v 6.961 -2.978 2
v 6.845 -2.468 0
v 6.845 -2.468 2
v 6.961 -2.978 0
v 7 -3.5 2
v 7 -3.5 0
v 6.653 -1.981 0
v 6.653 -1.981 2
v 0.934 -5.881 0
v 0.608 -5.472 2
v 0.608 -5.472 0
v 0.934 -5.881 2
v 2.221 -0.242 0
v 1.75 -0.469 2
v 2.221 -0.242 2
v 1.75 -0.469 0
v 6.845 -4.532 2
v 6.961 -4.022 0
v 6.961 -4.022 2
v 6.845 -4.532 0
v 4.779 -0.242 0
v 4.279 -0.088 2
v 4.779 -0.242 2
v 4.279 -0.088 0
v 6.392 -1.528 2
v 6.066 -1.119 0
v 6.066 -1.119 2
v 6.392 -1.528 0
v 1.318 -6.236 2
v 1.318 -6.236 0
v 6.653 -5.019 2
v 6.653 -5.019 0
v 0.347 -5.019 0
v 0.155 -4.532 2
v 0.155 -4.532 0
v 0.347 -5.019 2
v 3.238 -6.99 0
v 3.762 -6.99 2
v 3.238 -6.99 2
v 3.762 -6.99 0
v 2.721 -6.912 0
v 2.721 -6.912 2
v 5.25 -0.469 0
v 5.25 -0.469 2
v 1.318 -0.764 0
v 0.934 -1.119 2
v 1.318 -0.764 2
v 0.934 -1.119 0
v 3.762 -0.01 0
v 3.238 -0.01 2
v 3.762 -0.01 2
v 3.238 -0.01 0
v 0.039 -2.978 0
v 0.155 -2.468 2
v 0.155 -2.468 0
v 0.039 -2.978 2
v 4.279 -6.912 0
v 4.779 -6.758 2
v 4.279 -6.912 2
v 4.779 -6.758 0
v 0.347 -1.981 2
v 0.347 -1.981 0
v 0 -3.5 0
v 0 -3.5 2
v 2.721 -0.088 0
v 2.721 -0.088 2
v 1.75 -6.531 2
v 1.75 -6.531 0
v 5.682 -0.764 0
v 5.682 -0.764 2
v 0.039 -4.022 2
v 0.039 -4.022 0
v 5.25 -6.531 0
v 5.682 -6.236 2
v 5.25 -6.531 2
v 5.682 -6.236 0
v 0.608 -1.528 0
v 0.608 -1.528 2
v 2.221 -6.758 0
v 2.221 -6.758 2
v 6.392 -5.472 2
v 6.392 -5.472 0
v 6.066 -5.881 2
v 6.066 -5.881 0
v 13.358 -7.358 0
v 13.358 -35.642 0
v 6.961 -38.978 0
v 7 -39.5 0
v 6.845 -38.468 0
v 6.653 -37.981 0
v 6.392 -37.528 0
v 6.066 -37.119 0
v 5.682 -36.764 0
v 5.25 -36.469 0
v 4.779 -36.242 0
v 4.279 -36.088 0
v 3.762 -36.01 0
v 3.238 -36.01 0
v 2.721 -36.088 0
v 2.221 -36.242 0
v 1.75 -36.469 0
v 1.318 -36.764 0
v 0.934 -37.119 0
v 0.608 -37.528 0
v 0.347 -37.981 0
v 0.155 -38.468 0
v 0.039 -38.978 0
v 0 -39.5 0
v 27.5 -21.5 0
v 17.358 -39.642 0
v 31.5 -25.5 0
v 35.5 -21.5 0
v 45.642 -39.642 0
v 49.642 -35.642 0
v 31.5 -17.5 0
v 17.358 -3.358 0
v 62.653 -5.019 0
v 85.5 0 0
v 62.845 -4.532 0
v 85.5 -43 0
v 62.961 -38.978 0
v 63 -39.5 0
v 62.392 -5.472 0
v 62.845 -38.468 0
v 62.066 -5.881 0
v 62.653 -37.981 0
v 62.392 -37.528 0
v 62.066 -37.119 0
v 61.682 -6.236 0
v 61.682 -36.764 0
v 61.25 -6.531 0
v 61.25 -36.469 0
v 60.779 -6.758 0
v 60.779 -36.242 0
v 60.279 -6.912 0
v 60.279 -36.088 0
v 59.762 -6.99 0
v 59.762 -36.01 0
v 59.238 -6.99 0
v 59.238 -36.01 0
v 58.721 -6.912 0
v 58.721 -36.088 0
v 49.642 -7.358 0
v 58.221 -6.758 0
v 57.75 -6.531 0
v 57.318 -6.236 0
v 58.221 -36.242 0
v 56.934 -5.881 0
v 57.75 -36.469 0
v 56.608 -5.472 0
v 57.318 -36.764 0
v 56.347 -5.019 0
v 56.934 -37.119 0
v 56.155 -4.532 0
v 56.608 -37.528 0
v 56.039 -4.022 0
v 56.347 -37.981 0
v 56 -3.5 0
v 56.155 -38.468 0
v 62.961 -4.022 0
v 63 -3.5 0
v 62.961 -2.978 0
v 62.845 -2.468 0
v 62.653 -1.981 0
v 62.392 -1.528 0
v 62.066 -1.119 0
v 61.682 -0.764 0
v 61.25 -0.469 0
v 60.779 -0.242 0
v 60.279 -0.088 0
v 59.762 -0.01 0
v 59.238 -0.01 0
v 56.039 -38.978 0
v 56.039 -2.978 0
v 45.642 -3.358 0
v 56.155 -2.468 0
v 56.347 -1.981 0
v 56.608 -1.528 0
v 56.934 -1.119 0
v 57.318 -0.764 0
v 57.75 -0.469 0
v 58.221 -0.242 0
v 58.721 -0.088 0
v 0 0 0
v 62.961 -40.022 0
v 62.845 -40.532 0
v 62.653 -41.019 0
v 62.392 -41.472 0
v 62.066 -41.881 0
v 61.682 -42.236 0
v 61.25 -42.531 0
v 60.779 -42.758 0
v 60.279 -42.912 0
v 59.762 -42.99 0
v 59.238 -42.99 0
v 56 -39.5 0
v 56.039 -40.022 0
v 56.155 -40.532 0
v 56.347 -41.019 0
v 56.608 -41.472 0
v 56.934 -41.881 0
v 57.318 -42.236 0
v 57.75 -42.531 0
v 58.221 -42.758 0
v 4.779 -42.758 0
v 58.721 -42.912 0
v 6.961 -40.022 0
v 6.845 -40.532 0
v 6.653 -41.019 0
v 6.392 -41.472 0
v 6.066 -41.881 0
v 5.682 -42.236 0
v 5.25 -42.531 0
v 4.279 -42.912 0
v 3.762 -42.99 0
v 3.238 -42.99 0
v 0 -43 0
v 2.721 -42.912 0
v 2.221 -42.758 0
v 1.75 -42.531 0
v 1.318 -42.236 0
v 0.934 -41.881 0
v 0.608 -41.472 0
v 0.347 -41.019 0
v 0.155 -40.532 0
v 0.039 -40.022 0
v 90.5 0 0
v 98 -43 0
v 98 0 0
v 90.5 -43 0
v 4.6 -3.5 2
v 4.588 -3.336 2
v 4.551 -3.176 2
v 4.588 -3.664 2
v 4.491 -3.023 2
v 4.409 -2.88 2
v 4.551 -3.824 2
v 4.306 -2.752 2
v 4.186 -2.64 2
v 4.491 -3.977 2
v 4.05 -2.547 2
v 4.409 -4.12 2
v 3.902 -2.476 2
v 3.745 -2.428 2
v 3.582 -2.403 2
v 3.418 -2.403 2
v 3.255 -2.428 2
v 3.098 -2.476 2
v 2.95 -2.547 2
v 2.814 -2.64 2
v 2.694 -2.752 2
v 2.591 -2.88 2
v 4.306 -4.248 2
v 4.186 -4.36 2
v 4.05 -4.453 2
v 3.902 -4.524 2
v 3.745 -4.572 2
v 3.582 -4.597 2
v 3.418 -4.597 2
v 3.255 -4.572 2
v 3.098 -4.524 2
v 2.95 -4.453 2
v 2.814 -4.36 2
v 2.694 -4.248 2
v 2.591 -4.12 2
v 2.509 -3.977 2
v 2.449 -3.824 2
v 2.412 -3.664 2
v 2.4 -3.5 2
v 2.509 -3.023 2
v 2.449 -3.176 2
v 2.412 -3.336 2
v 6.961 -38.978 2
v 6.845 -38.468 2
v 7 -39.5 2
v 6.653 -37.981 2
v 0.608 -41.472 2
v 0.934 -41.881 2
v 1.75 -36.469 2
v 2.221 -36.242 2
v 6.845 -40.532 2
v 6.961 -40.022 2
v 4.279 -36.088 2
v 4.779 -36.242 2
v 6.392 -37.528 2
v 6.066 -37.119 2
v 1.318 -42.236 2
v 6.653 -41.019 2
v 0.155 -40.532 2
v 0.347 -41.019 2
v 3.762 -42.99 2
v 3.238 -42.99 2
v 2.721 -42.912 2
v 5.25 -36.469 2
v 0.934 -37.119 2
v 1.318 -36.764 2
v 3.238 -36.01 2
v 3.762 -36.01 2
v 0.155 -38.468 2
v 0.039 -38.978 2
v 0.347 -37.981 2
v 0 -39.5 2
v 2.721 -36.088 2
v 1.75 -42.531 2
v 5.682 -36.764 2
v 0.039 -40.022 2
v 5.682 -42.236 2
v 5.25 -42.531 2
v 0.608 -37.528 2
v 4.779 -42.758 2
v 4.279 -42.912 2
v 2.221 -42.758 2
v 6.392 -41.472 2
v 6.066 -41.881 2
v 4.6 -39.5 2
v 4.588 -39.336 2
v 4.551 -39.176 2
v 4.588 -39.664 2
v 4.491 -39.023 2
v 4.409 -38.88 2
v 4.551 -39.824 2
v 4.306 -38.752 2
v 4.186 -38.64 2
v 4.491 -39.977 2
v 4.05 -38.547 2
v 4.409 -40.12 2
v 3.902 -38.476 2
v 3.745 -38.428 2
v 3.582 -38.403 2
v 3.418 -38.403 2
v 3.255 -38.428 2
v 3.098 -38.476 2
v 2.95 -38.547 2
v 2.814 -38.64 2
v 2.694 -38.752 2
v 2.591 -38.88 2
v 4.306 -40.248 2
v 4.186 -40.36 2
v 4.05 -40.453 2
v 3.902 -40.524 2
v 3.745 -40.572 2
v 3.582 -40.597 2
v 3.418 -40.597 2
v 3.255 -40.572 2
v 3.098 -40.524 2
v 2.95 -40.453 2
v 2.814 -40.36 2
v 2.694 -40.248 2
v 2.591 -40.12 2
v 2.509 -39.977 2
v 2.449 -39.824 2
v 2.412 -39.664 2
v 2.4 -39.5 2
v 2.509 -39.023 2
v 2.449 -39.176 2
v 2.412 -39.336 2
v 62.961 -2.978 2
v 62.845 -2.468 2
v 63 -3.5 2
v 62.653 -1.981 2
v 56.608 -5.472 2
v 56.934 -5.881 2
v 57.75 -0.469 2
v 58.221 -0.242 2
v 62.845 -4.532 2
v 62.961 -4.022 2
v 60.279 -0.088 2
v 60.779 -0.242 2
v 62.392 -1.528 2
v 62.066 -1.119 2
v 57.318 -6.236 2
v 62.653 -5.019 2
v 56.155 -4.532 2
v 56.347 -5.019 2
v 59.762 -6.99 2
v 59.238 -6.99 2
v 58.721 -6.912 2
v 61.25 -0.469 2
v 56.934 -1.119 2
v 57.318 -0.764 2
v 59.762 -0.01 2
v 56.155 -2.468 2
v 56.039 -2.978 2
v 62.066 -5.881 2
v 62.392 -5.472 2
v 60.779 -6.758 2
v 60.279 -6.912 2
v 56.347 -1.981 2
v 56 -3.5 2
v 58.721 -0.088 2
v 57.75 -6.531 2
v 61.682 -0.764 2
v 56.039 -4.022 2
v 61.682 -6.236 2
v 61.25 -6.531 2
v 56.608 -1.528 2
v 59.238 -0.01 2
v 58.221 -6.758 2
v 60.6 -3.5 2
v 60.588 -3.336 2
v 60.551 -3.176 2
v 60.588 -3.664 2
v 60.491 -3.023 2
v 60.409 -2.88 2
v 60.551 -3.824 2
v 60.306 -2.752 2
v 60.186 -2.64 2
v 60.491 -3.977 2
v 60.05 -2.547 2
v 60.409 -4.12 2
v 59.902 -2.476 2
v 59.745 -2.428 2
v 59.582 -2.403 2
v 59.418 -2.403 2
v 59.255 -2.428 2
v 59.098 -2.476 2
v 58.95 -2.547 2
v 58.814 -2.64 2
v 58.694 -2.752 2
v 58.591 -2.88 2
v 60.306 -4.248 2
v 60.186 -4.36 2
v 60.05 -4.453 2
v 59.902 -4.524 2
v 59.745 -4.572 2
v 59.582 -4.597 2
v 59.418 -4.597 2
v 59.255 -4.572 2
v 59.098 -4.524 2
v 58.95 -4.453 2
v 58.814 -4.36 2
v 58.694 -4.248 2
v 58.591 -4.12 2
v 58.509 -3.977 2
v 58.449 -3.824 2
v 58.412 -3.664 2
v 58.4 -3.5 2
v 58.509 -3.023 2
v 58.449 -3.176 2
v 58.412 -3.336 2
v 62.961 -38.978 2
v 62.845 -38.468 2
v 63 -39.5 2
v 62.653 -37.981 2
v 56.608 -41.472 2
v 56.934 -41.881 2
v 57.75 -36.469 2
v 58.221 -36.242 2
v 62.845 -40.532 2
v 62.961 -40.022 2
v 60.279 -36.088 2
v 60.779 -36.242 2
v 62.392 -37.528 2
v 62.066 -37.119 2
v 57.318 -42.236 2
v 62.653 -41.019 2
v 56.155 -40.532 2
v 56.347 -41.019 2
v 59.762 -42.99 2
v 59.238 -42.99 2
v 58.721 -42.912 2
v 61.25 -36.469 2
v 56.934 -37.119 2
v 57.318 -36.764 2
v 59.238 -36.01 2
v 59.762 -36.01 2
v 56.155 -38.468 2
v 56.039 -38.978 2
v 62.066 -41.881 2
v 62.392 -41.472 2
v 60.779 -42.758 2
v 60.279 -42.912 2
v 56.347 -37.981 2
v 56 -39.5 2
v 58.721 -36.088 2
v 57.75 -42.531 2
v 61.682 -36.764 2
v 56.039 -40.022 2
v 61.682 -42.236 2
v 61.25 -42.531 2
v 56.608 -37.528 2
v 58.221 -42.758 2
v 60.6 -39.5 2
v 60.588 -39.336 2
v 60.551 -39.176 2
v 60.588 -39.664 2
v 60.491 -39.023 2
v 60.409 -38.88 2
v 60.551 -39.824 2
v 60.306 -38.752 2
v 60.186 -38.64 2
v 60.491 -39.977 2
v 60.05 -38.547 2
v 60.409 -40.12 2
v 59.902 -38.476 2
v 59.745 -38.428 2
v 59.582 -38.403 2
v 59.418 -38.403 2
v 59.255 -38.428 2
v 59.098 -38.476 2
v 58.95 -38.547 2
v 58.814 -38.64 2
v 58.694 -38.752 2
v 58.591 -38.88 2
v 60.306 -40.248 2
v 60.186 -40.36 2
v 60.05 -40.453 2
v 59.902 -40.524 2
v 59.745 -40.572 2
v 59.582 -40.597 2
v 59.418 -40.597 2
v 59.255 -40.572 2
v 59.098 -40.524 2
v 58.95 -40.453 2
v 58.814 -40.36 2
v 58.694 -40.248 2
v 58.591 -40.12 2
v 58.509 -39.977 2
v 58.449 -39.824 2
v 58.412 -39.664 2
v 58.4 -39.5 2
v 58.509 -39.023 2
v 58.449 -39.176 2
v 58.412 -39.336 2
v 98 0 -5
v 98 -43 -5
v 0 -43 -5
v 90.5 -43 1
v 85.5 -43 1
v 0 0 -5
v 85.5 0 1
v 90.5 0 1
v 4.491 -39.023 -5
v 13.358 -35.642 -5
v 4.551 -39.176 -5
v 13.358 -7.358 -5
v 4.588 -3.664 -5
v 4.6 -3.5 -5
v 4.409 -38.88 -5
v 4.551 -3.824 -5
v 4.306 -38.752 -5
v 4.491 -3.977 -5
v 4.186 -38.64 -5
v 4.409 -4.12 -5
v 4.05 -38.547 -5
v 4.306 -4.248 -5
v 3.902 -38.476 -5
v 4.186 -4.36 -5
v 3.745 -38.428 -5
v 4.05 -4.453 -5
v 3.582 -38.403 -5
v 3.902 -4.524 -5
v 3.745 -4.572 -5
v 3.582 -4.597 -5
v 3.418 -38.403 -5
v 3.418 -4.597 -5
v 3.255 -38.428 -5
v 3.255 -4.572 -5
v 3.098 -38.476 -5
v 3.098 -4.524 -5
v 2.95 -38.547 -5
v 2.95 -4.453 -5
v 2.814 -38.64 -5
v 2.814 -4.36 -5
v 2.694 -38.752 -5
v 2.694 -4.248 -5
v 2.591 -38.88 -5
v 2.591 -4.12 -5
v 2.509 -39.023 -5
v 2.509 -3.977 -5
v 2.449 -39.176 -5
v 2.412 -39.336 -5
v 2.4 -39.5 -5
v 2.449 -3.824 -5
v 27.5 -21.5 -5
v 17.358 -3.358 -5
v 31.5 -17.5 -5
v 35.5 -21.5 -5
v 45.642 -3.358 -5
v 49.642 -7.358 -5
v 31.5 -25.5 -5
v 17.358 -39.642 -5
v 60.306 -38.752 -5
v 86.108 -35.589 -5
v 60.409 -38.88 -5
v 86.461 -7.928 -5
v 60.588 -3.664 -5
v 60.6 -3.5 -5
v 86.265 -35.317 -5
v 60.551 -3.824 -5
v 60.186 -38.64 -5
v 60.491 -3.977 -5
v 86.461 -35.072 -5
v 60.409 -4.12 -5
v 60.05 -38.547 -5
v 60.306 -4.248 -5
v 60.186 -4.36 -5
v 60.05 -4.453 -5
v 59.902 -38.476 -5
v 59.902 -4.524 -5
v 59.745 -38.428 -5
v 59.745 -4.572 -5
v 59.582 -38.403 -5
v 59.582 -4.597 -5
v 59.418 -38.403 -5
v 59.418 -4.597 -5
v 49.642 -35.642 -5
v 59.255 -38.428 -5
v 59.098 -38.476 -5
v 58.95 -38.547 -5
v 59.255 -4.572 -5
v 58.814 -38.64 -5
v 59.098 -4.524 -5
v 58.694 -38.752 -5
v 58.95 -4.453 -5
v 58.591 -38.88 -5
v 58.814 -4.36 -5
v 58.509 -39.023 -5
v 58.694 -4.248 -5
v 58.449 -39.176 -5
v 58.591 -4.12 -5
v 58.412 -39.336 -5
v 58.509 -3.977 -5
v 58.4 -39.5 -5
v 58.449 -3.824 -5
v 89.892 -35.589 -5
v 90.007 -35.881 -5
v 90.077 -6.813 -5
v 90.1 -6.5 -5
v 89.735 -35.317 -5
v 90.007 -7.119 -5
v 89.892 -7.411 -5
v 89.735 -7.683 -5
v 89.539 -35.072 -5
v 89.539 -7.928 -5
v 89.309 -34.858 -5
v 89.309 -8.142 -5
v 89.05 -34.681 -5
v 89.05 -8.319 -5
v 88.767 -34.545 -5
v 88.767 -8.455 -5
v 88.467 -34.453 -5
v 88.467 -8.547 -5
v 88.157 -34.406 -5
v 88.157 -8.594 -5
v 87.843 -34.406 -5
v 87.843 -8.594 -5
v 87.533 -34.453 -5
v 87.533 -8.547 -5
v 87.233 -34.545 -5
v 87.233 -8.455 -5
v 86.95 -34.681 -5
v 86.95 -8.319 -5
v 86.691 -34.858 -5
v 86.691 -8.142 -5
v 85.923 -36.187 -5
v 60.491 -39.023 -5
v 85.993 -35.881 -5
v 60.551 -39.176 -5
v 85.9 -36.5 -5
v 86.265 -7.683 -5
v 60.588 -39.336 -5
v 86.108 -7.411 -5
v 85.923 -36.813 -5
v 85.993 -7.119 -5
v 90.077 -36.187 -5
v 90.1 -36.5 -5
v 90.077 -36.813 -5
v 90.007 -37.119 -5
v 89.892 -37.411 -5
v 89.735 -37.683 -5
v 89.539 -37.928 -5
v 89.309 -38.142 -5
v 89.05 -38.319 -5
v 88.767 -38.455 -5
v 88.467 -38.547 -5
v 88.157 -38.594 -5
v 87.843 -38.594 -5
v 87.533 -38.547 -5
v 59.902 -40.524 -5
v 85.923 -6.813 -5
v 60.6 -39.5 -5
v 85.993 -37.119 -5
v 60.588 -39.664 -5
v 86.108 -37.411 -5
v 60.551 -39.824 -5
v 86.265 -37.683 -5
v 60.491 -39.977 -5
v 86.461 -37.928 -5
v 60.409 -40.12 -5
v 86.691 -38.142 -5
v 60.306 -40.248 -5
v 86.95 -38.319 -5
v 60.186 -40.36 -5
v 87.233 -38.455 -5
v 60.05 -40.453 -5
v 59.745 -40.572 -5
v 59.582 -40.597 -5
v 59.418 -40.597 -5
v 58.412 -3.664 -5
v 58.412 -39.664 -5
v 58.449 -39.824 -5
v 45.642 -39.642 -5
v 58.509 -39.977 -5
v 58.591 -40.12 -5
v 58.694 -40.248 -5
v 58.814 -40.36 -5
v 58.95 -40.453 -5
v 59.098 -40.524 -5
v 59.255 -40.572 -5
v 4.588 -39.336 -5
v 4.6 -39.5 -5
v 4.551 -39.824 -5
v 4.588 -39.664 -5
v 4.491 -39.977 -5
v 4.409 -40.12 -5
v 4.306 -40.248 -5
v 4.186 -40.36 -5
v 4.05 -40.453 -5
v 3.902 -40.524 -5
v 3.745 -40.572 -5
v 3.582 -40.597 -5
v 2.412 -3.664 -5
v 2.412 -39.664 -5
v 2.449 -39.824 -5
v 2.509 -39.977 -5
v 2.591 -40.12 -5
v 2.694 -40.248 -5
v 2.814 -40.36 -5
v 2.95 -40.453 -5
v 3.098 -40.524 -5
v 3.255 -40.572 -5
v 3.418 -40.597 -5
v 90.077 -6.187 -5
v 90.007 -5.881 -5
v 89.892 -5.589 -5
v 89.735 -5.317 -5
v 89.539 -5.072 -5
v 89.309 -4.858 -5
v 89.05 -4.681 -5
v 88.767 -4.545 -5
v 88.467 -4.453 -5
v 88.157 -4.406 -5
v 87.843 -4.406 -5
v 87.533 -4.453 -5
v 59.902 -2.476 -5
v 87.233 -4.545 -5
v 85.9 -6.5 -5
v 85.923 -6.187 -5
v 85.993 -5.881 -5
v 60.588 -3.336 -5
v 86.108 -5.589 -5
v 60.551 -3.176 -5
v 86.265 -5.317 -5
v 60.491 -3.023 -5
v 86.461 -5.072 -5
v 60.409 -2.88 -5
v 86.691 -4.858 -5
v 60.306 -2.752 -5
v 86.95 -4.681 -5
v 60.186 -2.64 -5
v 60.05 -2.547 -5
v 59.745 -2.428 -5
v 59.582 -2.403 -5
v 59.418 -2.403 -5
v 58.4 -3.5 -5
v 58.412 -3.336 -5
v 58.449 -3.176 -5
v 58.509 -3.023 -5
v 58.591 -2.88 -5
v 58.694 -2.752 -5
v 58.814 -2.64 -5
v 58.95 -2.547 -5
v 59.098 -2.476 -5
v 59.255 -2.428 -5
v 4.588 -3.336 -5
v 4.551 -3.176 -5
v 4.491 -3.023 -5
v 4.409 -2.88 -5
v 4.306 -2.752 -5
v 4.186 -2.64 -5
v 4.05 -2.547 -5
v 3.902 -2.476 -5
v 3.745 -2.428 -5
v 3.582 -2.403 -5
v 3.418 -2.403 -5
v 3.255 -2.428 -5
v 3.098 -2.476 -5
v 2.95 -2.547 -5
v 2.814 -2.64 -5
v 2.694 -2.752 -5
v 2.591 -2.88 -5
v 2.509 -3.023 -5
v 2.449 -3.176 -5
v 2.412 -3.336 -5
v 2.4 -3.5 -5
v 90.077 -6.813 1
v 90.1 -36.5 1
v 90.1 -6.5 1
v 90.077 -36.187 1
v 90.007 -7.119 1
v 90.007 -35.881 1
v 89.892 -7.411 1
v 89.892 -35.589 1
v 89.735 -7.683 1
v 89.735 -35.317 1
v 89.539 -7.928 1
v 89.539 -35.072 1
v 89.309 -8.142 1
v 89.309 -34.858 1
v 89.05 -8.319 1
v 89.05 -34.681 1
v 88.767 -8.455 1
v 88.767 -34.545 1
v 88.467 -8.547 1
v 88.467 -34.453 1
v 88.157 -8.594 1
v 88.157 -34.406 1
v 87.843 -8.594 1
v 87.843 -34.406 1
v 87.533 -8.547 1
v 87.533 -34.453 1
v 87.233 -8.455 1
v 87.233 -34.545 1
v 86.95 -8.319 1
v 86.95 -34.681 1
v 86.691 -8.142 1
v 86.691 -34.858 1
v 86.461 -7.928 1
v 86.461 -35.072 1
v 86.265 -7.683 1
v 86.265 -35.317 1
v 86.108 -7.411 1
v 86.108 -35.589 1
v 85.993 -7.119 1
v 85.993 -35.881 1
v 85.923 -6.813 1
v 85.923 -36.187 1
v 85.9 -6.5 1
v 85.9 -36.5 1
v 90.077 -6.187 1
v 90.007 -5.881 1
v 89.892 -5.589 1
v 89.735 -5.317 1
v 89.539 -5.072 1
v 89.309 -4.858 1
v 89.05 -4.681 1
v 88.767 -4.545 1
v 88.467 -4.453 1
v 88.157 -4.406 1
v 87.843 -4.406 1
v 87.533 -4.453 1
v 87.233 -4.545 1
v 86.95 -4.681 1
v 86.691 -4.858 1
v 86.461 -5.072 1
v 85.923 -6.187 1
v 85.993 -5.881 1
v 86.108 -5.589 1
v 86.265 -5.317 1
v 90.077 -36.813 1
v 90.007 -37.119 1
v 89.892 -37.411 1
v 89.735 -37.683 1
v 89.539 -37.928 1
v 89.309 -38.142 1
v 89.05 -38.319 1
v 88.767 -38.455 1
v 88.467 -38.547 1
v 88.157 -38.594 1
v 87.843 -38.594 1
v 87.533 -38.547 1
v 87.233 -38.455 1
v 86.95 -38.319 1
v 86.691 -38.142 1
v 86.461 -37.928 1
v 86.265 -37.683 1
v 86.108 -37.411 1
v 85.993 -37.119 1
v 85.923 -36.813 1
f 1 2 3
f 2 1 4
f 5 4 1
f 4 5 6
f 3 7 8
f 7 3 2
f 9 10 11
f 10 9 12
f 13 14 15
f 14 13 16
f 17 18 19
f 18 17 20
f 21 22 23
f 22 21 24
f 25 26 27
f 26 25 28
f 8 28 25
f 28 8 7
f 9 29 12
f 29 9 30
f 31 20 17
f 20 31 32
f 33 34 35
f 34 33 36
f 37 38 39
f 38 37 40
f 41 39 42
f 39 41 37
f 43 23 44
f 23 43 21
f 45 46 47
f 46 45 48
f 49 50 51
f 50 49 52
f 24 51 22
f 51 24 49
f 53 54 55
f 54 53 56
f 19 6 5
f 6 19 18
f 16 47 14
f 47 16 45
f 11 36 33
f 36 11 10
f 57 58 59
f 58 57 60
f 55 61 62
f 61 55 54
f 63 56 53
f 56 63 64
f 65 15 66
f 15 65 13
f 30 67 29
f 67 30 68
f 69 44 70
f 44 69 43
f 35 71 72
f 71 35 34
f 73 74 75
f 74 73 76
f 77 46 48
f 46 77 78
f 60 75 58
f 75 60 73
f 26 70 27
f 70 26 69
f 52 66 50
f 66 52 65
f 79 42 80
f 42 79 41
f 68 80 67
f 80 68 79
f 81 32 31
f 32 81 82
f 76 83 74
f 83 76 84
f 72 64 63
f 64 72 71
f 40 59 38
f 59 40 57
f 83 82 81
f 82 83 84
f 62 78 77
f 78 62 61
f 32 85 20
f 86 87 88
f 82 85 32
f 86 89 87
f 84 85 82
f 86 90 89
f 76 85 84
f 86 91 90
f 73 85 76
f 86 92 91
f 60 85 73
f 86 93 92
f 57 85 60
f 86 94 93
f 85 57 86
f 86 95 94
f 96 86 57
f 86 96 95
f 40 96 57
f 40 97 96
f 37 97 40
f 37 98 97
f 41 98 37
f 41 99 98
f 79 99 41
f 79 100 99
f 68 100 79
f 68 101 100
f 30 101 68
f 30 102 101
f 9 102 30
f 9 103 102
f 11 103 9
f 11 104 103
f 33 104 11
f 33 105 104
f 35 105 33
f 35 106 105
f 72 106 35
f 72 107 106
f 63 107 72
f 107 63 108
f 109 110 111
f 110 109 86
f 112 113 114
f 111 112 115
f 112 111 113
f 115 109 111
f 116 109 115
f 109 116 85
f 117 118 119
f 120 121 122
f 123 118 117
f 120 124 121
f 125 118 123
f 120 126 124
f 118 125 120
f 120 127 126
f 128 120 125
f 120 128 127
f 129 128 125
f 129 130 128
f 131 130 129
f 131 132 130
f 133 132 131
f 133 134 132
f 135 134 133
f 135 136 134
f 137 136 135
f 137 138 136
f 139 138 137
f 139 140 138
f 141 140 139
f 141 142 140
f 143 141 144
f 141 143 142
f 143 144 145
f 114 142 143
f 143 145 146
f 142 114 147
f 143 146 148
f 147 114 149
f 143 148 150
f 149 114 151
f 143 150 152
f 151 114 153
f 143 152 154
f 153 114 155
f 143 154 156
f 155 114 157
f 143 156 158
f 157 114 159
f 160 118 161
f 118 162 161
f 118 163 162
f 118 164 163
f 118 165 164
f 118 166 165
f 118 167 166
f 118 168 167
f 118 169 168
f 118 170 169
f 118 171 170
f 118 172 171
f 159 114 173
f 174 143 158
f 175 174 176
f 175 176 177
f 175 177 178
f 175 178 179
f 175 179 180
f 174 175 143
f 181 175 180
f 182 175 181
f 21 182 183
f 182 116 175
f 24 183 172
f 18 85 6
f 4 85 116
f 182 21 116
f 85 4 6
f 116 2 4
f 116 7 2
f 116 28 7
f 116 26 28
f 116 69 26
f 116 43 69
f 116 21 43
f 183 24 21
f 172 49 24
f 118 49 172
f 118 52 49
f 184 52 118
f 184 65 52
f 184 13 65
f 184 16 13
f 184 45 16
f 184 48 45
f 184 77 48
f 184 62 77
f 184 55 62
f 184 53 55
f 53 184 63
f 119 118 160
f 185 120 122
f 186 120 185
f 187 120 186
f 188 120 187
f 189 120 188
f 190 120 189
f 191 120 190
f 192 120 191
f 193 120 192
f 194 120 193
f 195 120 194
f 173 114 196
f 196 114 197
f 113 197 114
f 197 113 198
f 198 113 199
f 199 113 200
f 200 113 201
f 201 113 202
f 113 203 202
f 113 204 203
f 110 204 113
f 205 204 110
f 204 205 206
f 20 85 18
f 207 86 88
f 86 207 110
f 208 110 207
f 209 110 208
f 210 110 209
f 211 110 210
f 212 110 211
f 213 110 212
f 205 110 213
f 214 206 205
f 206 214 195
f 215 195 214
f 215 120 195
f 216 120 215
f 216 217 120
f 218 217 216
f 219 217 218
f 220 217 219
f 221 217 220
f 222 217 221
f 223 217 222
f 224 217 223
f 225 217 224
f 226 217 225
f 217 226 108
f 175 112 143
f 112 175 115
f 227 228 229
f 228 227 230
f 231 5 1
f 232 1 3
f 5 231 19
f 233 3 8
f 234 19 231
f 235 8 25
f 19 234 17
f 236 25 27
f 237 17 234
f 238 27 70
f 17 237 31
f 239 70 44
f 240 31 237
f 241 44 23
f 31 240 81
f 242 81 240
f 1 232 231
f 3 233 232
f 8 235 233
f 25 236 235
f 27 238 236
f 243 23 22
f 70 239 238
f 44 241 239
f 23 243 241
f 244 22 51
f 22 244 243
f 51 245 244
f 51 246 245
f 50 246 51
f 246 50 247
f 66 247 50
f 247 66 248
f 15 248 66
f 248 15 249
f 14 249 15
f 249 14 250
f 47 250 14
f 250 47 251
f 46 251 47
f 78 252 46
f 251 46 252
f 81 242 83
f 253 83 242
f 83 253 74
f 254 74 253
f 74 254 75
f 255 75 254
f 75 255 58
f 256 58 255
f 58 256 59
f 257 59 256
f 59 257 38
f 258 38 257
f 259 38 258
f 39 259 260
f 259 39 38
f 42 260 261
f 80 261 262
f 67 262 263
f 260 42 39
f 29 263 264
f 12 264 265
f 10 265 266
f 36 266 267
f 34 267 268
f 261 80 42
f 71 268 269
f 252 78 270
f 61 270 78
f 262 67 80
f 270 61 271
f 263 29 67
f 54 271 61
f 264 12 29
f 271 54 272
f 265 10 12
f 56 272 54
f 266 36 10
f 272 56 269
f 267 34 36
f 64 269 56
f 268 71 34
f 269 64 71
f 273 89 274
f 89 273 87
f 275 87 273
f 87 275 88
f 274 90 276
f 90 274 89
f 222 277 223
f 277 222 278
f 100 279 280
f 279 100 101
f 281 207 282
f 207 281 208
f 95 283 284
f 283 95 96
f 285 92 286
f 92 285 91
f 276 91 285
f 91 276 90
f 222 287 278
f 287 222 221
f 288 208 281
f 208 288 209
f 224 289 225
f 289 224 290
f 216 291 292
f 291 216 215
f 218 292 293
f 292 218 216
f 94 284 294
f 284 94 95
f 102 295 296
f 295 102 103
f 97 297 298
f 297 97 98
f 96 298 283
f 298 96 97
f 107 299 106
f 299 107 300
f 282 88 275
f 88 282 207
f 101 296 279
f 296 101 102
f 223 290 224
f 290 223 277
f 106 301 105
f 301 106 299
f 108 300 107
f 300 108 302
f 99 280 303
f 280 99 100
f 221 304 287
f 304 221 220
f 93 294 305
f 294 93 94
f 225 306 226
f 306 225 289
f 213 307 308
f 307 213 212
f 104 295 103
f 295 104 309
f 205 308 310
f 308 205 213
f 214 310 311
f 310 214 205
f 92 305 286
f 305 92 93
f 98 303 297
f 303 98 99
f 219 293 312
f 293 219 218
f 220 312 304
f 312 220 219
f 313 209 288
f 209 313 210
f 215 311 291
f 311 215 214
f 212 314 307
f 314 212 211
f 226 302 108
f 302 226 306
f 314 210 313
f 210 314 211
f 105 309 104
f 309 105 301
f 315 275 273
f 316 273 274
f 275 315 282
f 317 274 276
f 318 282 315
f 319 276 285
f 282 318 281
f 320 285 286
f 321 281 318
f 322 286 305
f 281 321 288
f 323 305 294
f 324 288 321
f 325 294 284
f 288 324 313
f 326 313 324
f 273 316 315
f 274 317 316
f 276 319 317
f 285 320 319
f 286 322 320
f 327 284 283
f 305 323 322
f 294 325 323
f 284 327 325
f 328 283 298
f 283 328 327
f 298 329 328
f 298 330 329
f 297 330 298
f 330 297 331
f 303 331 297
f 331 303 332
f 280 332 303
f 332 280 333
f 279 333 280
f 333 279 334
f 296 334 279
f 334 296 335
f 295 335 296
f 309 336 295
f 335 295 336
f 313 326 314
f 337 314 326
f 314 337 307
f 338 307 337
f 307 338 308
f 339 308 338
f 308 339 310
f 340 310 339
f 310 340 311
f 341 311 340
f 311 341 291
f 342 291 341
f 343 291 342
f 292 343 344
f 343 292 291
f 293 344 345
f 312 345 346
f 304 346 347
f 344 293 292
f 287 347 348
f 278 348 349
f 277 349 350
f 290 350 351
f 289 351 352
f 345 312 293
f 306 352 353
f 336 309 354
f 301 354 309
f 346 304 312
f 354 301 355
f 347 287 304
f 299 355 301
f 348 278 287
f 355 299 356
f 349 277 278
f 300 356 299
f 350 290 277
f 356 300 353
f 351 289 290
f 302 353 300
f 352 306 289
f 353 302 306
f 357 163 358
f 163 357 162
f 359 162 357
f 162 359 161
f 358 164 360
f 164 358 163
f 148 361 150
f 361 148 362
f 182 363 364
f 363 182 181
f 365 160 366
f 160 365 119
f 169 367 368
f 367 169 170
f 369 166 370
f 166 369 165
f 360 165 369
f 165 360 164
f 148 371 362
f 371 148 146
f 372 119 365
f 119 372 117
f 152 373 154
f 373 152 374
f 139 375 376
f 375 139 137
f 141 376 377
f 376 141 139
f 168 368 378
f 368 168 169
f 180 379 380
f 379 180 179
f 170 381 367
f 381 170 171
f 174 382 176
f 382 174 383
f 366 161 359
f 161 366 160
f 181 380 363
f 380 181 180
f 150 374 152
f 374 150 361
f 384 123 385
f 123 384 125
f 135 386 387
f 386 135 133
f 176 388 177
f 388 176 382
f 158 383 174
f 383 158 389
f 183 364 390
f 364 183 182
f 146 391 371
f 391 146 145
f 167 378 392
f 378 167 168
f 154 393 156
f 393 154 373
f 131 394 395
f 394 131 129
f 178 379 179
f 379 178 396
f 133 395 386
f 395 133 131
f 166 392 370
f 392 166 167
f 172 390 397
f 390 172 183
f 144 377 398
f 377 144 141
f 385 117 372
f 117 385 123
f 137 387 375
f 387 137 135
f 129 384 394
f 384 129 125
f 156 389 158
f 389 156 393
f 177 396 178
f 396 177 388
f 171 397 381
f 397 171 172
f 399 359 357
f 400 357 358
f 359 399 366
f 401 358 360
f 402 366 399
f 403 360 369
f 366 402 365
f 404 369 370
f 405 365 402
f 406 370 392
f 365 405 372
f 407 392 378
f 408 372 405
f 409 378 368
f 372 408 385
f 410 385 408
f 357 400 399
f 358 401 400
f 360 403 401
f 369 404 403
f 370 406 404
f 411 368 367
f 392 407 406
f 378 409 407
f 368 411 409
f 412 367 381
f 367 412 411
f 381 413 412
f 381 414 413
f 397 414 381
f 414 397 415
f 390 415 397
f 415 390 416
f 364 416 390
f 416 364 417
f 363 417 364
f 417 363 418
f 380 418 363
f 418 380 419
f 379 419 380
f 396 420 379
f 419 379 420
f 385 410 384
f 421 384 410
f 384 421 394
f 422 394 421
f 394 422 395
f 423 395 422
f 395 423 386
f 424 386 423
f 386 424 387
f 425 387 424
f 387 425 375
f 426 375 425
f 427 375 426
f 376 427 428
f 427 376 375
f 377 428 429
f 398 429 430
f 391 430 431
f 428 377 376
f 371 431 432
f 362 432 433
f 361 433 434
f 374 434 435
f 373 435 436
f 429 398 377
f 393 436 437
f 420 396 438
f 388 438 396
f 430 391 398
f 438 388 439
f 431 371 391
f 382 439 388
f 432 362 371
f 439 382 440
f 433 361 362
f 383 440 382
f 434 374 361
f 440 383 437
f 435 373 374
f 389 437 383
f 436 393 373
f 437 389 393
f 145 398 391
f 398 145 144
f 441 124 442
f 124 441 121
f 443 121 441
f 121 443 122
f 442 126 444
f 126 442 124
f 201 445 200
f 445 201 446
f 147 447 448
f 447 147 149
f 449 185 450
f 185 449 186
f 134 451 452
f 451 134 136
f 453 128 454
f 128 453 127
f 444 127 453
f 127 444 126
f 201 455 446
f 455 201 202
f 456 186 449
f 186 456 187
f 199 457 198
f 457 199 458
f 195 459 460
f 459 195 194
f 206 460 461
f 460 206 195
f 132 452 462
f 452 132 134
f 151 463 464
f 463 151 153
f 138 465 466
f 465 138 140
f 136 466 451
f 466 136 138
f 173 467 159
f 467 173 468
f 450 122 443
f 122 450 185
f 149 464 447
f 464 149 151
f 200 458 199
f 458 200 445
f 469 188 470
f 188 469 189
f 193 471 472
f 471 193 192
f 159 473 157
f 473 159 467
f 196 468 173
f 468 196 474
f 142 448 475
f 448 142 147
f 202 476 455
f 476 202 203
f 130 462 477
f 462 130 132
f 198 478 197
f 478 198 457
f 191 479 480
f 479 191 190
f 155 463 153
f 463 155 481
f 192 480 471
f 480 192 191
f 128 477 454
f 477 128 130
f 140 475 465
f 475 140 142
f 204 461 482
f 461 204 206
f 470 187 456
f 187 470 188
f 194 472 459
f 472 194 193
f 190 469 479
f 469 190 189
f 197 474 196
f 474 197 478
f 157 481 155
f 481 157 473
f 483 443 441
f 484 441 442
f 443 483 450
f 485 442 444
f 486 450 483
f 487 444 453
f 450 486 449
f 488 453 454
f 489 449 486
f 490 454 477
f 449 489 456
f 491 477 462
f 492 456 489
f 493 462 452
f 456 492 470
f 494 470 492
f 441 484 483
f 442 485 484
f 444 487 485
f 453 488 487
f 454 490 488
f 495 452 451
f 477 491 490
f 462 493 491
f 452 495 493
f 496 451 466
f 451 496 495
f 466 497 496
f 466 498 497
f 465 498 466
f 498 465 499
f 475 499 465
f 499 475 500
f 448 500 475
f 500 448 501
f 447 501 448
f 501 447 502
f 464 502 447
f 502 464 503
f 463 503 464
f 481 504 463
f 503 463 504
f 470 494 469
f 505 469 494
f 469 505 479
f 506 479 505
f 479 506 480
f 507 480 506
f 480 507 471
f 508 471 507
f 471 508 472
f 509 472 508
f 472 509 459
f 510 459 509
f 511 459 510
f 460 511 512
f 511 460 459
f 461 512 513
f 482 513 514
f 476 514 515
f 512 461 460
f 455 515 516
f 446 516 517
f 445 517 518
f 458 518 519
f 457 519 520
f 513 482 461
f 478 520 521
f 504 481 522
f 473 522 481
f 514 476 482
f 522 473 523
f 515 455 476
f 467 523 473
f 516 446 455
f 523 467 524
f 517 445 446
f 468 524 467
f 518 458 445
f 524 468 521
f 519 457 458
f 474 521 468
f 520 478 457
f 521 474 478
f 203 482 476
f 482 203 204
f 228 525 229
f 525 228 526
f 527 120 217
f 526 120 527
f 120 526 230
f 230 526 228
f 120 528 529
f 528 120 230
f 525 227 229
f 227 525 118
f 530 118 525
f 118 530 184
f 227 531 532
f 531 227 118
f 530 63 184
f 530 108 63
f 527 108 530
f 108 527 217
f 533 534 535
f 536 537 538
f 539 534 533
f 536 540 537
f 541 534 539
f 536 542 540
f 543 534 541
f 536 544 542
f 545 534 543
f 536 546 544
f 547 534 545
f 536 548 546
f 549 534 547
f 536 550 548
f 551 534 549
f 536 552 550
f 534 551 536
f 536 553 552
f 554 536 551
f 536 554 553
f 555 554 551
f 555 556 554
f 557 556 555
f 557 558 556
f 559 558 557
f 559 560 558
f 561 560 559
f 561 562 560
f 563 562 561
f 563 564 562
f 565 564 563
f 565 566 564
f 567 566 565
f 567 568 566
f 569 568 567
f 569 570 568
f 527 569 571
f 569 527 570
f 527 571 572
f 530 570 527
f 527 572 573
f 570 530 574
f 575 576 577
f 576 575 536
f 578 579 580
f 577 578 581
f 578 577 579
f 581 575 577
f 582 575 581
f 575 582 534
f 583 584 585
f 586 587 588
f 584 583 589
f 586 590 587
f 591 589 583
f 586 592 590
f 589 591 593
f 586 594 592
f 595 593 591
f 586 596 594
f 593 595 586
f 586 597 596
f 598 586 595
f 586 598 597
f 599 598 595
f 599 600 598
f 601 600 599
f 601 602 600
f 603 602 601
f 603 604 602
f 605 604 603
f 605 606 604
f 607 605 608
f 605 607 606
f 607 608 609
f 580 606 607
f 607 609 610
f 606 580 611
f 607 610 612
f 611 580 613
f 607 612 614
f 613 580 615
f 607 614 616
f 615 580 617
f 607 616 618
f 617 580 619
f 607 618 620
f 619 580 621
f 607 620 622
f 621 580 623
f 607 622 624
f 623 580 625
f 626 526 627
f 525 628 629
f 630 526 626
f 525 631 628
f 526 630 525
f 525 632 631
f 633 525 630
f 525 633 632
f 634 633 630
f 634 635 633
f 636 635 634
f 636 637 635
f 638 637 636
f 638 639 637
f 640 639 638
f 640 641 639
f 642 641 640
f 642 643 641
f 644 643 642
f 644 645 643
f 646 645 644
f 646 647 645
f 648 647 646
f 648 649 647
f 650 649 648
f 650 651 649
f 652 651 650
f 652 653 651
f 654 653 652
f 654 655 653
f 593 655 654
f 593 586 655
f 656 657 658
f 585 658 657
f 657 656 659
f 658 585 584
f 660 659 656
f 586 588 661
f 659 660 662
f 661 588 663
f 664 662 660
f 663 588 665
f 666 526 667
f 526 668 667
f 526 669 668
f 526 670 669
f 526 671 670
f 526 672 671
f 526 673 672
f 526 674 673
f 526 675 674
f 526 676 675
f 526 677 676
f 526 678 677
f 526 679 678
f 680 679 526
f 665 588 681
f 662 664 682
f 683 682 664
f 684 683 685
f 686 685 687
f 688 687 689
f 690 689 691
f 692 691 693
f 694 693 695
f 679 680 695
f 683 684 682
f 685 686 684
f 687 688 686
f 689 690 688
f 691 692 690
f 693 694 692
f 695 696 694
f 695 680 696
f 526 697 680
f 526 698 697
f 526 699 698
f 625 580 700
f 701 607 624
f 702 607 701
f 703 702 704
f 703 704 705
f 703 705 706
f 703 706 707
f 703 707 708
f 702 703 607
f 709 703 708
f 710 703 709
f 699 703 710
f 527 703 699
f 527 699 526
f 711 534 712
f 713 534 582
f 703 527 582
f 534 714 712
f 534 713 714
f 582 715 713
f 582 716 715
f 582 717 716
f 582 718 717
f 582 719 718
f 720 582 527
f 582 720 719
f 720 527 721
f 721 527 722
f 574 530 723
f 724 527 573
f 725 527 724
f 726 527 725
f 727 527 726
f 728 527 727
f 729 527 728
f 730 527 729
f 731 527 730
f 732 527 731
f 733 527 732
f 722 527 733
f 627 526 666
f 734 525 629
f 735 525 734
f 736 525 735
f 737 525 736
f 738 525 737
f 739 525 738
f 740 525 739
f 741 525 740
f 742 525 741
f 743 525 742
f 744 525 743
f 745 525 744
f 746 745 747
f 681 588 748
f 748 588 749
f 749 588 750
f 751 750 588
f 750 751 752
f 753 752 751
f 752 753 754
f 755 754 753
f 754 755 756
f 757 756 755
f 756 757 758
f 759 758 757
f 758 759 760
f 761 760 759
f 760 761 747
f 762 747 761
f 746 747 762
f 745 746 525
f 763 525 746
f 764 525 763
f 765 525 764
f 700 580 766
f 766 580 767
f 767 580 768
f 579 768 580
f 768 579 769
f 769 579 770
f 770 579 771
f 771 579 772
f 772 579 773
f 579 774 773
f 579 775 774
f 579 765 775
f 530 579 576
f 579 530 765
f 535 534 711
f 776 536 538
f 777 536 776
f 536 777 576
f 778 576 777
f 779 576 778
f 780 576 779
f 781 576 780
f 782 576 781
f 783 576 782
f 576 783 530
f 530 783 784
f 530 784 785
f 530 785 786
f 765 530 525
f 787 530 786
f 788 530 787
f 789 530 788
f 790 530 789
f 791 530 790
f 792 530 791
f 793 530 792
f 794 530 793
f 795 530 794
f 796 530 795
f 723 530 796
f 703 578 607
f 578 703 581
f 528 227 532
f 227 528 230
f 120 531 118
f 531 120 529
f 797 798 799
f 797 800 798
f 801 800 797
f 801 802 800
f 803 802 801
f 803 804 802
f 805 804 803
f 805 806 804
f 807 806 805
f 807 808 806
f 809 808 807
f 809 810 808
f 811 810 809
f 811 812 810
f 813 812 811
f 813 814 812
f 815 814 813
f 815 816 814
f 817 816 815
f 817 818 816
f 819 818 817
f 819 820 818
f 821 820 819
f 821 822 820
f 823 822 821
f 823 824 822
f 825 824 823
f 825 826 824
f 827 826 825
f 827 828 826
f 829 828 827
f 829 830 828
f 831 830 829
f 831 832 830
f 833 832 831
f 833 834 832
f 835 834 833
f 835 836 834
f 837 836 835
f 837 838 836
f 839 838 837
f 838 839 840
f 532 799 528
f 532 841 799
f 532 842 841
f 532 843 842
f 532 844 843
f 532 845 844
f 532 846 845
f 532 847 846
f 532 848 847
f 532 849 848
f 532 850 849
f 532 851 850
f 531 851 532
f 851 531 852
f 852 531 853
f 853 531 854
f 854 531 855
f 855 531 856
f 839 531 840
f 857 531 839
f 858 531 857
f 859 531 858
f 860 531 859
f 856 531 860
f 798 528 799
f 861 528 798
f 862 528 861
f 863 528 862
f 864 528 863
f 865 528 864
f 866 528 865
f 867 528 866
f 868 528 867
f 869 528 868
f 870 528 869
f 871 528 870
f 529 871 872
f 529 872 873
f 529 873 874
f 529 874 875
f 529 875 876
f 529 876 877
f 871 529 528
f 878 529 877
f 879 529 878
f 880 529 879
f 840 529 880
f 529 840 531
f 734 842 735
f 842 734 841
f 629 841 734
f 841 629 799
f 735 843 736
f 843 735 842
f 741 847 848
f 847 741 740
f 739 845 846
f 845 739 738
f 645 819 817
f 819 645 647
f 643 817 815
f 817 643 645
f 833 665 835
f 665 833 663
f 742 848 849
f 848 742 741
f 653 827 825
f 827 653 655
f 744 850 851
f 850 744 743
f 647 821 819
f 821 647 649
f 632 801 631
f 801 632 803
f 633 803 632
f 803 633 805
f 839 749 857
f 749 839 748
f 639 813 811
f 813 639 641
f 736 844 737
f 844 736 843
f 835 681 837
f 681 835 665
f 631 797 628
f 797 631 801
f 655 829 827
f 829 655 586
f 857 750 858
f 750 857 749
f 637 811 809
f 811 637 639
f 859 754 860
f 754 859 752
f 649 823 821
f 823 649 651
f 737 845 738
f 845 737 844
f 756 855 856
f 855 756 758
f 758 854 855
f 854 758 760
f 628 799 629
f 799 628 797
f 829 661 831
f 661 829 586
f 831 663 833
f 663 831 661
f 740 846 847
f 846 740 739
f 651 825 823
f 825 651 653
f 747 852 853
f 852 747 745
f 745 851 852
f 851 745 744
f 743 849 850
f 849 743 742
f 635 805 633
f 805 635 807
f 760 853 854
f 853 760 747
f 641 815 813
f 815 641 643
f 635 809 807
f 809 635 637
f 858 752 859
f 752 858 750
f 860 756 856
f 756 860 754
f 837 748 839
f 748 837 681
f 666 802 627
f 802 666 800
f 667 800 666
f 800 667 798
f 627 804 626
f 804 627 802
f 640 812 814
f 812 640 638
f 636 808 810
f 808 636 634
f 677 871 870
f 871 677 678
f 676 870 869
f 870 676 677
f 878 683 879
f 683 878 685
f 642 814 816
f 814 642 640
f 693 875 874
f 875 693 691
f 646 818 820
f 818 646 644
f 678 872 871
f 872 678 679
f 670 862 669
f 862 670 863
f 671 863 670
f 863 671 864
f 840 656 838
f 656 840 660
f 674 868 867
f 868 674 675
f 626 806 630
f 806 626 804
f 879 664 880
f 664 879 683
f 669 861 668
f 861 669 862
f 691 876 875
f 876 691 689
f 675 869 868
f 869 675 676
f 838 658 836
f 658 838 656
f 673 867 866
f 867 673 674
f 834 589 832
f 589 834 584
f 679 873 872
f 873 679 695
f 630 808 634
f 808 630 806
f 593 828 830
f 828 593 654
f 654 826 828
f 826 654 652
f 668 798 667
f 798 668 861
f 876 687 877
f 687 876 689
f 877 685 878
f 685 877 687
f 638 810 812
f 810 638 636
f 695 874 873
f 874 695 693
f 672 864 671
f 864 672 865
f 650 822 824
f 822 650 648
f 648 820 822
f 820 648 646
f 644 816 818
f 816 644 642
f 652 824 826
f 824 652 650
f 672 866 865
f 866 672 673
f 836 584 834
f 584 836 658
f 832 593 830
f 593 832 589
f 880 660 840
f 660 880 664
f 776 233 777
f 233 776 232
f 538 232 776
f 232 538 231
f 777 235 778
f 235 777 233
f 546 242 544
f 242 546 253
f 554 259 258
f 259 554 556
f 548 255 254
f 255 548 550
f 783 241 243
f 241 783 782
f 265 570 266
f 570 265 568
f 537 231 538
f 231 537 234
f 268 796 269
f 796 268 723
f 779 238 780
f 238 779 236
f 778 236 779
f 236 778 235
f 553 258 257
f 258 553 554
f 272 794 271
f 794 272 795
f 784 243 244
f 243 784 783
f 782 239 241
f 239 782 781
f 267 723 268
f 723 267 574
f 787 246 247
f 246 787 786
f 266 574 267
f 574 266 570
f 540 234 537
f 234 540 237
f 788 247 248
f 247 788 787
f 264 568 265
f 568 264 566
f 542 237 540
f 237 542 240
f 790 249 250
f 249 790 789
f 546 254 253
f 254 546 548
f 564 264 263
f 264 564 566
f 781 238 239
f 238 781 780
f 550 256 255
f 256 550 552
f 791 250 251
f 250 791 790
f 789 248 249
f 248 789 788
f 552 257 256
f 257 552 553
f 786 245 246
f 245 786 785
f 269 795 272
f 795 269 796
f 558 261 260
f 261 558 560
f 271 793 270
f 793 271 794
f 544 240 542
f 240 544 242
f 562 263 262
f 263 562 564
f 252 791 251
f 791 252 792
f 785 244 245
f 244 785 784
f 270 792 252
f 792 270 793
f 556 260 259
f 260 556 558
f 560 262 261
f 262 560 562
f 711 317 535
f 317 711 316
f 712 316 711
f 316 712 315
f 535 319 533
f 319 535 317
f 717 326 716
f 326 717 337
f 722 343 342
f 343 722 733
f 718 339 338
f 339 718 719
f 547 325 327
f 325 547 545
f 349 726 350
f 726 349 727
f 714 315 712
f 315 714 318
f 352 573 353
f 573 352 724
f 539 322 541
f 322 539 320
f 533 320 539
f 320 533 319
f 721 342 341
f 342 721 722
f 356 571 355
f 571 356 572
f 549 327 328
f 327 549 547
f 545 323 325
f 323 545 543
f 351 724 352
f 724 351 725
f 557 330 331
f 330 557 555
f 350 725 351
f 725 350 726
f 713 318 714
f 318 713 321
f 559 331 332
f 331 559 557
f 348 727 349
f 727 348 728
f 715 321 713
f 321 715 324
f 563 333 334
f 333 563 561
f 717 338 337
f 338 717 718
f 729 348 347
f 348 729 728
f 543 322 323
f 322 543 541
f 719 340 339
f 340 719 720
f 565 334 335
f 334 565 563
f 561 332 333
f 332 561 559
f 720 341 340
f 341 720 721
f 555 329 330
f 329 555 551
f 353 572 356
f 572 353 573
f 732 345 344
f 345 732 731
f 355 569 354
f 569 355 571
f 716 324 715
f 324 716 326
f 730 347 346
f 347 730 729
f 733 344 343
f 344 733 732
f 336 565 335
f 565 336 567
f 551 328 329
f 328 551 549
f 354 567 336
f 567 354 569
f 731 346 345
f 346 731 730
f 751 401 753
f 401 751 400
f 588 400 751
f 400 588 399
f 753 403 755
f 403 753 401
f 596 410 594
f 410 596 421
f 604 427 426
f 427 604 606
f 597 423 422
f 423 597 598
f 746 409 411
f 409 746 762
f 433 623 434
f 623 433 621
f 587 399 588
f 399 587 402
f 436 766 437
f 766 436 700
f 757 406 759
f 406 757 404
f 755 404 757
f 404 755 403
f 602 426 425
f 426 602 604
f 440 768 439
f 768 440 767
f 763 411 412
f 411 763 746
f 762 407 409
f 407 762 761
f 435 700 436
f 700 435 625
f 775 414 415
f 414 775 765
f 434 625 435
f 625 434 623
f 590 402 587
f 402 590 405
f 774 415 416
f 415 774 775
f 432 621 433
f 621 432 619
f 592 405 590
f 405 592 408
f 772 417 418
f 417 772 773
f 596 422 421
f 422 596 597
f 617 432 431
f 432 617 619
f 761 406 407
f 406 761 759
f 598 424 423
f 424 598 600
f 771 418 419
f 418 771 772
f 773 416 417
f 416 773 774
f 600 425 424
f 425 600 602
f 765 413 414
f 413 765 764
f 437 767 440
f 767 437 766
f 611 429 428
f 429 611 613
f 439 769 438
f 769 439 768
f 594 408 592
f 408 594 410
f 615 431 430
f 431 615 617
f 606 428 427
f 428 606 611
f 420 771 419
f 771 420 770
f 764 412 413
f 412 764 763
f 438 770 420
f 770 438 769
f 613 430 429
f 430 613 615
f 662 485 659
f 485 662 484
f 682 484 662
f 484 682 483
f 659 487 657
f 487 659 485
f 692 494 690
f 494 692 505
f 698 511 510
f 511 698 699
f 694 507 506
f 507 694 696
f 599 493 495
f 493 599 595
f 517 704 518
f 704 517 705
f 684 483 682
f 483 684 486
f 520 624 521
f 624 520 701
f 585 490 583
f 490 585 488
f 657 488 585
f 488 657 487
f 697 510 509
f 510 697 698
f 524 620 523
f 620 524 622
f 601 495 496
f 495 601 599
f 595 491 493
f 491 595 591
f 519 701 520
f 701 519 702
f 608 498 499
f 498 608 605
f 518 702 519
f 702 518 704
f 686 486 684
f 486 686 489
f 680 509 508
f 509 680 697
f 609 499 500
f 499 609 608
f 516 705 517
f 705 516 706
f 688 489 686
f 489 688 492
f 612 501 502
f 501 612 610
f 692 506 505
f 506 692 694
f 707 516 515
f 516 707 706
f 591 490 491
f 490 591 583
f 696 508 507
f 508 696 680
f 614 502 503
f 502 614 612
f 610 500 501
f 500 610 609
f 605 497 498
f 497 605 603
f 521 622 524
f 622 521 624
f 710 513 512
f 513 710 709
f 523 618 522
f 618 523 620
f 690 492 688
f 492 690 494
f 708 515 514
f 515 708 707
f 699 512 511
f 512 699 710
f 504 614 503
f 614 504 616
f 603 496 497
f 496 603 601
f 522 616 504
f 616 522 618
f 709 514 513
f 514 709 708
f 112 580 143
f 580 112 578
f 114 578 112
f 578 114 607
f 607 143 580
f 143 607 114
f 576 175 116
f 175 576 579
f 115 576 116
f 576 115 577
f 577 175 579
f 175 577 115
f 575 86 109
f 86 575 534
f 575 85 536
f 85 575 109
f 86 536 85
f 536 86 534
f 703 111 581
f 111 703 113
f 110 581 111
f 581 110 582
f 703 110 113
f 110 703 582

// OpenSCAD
mosfet_width = 60 + 3;
mosfet_height = 40 + 3;
mosfet_depth = 2;

mosfet_holes_x = 56;
mosfet_holes_y = 36;
mosfet_dia = 2.2;

wall = 5.0;
mosfet_wall_dist = 15.0;
mosfet_mount_dist = 2.0;
mount_dia = 4.2;

cutout_len = 20;
cutout_dist = 4;

$fn = 42;

module prism(l, w, h) {
    polyhedron(
        points = [[0,0,0], [l,0,0], [l,w,0], [0,w,0], [0,w,h], [l,w,h]],
        faces = [[0,1,2,3],[5,4,3,2],[0,4,5,1],[0,3,4],[5,2,1]]
    );
}

module mosfet() {
    cube([mosfet_width, mosfet_height, mosfet_depth]);
    
    for (x = [-1, 1])
    for (y = [-1, 1])
    translate([mosfet_width / 2 + x * mosfet_holes_x / 2, mosfet_height / 2 + y * mosfet_holes_y / 2, -mosfet_mount_dist - wall - 1])
    cylinder(d = mosfet_dia - 0.2, h = mosfet_mount_dist + wall + 1);
}

module mount() {
    translate([0, -wall, 0])
    difference() {
        union() {
            cube([mosfet_width + mosfet_wall_dist + 20, wall, mosfet_height]);
            
            translate([mosfet_width + mosfet_wall_dist + 7.5, wall, 0])
            cube([5, 1, mosfet_height]);
            
            for (x = [-1, 1])
            for (y = [-1, 1])
            translate([mosfet_width / 2 + x * mosfet_holes_x / 2, wall, mosfet_height / 2 + y * mosfet_holes_y / 2])
            rotate([-90, 0, 0])
            cylinder(d = 7, h = mosfet_mount_dist);
        }
        
        for (i = [-15, 15])
        translate([mosfet_width + mosfet_wall_dist + 10, -1, mosfet_height / 2 + i])
        rotate([-90, 0, 0])
        cylinder(d = mount_dia, h = wall + 3);
        
        for (x = [-1, 1])
        for (y = [-1, 1])
        translate([mosfet_width / 2 + x * mosfet_holes_x / 2, -1, mosfet_height / 2 + y * mosfet_holes_y / 2])
        rotate([-90, 0, 0])
        cylinder(d = mosfet_dia, h = wall + mosfet_mount_dist + 2);
        
        for (i = [0, 1, 2, 3])
        translate([mosfet_width / 2, 0, mosfet_height / 2])
        rotate([0, 90 * i, 0])
        translate([cutout_len * sqrt(2) / 2 + cutout_dist, -1, -cutout_len * sqrt(2) / 2])
        rotate([45, 0, 90])
        prism(wall + 2, cutout_len, cutout_len);
    }
}

module assembly() {
    %translate([0, mosfet_mount_dist, mosfet_height])
    rotate([-90, 0, 0])
    mosfet();
    
    mount();
}

rotate([90, 0, 0])
assembly();
